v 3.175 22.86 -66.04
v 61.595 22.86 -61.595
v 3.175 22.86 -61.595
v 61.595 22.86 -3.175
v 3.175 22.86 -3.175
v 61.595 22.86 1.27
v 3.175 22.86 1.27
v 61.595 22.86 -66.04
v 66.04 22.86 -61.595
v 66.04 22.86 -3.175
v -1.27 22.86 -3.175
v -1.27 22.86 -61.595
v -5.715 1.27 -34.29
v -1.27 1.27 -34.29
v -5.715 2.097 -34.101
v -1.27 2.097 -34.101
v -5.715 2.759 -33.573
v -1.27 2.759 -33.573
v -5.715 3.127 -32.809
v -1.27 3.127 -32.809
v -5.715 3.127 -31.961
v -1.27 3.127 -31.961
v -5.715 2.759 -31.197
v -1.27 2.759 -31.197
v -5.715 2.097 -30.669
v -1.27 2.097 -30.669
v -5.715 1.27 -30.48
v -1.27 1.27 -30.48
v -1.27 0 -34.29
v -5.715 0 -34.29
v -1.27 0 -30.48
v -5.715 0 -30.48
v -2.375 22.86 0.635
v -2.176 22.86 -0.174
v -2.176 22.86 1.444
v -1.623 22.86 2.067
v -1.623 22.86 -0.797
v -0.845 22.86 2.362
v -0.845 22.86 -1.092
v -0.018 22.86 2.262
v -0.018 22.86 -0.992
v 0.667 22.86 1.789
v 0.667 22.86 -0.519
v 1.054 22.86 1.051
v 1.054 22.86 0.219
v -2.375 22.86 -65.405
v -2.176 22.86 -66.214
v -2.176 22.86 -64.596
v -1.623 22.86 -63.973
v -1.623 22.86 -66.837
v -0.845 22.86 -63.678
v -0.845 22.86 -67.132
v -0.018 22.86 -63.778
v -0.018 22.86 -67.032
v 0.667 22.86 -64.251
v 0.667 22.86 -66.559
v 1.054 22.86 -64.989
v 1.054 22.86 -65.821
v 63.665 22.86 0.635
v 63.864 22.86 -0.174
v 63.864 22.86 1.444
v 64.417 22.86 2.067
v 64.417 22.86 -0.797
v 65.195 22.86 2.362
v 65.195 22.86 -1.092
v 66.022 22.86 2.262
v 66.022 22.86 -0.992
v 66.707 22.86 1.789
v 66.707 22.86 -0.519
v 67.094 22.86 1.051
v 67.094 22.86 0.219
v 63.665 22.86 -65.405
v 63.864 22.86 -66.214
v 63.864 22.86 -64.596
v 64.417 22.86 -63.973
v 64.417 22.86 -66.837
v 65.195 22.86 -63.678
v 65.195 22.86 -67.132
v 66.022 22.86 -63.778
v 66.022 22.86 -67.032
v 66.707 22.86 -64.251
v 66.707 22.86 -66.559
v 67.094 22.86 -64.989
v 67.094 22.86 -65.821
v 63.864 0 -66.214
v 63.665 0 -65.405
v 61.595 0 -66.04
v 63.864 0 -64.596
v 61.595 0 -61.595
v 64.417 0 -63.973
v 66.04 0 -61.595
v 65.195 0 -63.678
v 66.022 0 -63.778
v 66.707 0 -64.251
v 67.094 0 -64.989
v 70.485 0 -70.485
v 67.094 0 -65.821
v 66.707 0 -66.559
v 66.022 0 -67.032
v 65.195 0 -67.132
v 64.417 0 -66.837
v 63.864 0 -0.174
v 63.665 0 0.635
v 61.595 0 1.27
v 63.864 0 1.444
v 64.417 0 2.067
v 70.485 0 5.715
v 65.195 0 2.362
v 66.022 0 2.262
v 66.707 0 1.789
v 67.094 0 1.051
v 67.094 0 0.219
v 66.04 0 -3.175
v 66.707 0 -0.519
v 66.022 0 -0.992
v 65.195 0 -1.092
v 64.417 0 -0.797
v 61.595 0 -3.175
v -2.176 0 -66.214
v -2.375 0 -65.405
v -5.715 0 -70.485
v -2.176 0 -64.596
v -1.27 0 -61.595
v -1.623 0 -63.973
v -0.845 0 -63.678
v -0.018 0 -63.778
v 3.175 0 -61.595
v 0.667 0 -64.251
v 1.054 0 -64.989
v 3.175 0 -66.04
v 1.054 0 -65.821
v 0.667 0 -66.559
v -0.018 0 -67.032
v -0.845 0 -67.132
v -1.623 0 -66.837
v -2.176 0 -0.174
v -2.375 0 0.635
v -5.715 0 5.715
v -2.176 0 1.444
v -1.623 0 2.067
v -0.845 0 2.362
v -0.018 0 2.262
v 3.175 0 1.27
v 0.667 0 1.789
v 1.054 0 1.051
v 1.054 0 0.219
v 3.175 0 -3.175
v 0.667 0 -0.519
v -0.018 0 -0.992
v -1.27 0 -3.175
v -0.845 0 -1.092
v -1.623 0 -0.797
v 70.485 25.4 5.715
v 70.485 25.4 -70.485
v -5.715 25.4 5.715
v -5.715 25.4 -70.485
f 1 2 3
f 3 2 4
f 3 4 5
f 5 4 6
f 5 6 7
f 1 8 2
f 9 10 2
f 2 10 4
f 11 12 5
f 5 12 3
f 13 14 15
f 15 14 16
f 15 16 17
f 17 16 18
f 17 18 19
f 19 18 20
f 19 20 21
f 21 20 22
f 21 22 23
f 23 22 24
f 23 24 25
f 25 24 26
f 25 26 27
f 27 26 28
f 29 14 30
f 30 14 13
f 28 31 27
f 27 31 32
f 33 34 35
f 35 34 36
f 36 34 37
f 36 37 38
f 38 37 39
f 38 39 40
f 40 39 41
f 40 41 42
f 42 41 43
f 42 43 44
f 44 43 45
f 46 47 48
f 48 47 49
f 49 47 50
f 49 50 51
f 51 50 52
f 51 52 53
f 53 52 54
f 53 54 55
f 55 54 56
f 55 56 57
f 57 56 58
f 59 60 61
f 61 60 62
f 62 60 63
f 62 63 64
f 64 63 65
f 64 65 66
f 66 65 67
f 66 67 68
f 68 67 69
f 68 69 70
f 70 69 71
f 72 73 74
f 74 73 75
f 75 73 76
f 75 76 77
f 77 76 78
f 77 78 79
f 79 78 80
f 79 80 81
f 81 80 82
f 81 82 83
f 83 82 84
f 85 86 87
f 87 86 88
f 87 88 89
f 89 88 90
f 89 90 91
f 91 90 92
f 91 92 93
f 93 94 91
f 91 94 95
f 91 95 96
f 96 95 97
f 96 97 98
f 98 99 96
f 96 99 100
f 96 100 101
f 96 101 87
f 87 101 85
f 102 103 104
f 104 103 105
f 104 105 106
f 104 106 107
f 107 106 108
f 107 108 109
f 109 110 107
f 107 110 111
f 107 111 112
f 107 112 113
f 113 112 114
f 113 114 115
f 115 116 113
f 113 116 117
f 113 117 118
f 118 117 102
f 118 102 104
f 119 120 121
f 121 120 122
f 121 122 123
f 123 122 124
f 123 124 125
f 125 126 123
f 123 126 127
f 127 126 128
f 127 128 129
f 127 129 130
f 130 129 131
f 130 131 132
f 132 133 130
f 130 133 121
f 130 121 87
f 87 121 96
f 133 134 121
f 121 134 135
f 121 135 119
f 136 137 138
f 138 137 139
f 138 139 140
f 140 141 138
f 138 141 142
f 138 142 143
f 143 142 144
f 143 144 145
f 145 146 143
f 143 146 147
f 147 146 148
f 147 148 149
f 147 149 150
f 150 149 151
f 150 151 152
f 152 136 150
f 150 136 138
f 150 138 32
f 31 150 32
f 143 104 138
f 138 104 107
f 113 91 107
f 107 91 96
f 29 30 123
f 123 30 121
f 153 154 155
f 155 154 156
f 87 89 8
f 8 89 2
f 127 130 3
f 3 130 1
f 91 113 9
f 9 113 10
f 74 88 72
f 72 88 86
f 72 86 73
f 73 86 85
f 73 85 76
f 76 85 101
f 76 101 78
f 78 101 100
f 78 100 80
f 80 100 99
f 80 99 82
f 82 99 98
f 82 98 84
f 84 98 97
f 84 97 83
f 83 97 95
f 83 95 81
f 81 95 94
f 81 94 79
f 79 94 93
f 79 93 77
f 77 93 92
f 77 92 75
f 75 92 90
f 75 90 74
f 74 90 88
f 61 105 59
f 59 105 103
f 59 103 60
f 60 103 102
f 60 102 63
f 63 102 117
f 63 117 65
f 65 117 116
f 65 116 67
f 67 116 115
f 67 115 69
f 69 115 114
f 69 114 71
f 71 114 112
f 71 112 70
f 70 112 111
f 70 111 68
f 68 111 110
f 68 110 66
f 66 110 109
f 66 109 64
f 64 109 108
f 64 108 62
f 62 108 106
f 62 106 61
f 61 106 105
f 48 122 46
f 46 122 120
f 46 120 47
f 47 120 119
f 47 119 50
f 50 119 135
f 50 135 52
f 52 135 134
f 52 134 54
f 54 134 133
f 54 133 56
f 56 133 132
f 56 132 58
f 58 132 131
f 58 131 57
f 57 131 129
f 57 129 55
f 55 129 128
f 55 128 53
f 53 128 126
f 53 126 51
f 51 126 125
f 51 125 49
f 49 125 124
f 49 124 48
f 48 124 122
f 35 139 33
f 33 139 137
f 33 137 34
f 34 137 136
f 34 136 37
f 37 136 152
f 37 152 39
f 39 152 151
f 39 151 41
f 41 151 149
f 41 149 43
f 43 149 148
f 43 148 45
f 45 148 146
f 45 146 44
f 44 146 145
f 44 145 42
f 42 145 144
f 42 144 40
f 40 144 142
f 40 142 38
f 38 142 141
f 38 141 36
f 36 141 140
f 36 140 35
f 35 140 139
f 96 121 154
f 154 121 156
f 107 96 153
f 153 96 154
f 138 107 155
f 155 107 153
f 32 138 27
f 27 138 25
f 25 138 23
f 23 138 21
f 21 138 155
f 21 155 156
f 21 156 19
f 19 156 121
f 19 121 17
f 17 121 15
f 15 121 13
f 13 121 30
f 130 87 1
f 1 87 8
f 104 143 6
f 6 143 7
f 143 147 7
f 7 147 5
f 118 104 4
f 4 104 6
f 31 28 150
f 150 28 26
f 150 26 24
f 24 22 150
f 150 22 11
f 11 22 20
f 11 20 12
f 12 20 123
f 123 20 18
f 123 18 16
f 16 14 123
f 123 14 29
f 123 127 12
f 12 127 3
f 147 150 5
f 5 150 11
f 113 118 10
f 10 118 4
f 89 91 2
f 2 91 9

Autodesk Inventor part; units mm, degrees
ref_plane "YZ Plane" through (0, 0, 0) normal (1, 0, 0) x (0, 1, 0)
ref_plane "XZ Plane" through (0, 0, 0) normal (0, 1, 0) x (-1, 0, 0)
ref_plane "XY Plane" through (0, 0, 0) normal (0, 0, 1) x (1, 0, 0)
sketch "Sketch1" plane through (0, 0, 0) normal (0, 1, 0) x (-1, 0, 0)
  line L0 (-70.485, -70.485) -> (5.715, -70.485)
  line L1 (5.715, -70.485) -> (5.715, 5.715)
  line L2 (5.715, 5.715) -> (-70.485, 5.715)
  line L3 (-70.485, 5.715) -> (-70.485, -70.485)
  line L4 (-70.485, -70.485) -> (5.715, 5.715) construction
  line L5 (5.715, -70.485) -> (-70.485, 5.715) construction
  line L6 (5.715, 5.715) -> (0.635, 5.715) construction
  line L7 (0.635, 5.715) -> (0.635, 0.635) construction
  line L8 (0.635, 0.635) -> (5.715, 0.635) construction
  line L9 (5.715, 0.635) -> (5.715, 5.715) construction
  line L10 (-3.175, -3.175) -> (-61.595, -3.175)
  line L11 (-61.595, -3.175) -> (-61.595, -61.595)
  line L12 (-61.595, -61.595) -> (-3.175, -61.595)
  line L13 (-3.175, -61.595) -> (-3.175, -3.175)
  line L14 (-3.175, -3.175) -> (-61.595, -61.595) construction
  line L15 (-61.595, -3.175) -> (-3.175, -61.595) construction
  circle A0 centre (0.635, 0.635) radius 1.7399
  circle A1 centre (0.635, -65.405) radius 1.7399
  circle A2 centre (-65.405, 0.635) radius 1.7399
  circle A3 centre (-65.405, -65.405) radius 1.7399
  point P0 (0, 0)
  point P1 (-32.385, -32.385)
  dimension "d2" = 76.2
  dimension "d3" = 76.2
  dimension "d4" = 5.08
  dimension "d5" = 5.08
  dimension "d7" = 58.42
  dimension "d8" = 58.42
  dimension "d9" = 3.4798
  dimension "d12" = 66.04
  dimension "d15" = 66.04
extrude "Extrusion1" add sketch "Sketch1" along normal blind 22.86
sketch "Sketch2" plane through (0, 22.86, 0) normal (0, 1, 0) x (1, 0, 0)
  line L0 (-5.715, -5.715) -> (70.485, -5.715) projected
  line L1 (70.485, -5.715) -> (70.485, 70.485) projected
  line L2 (-5.715, -5.715) -> (70.485, -5.715)
  line L3 (70.485, -5.715) -> (70.485, 70.485)
  line L4 (70.485, 70.485) -> (-5.715, 70.485)
  line L5 (-5.715, 70.485) -> (-5.715, -5.715)
  point P0 (0, 0)
extrude "Extrusion2" add sketch "Sketch2" along normal blind 2.54
sketch "Sketch3" plane through (-5.715, 0, -70.485) normal (-1, 0, 0) x (0, 0, 1)
  line L0 (38.1, 0) -> (38.1, 25.4) construction
  line L1 (76.2, 25.4) -> (0, 25.4) construction
  line L2 (38.1, 0) -> (40.005, 0) construction
  line L3 (40.005, 0) -> (36.195, 0)
  line L4 (36.195, 0) -> (36.195, 1.27)
  line L5 (40.005, 1.27) -> (40.005, 0)
  arc A0 (40.005, 1.27) -> (36.195, 1.27) centre (38.1, 1.27) ccw
  point P0 (70.485, 0)
  point P1 (38.1, 3.175)
  dimension "d24" = 1.27
  dimension "d25" = 3.81
  dimension "d26" = 1.905
extrude "Extrusion3" cut sketch "Sketch3" against normal up to surface (8.89 mm away)
sketch "Sketch4" plane through (0, 0, 0) normal (0, -1, 0) x (1, 0, 0)
  line L0 (61.595, -3.175) -> (3.175, -3.175) construction
  line L1 (-5.715, 5.715) -> (70.485, 5.715) construction
  line L2 (3.175, -3.175) -> (61.595, -3.175)
  line L3 (61.595, -3.175) -> (61.595, 1.27)
  line L4 (61.595, 1.27) -> (3.175, 1.27)
  line L5 (3.175, 1.27) -> (3.175, -3.175)
  line L6 (70.485, -70.485) -> (-5.715, -70.485) construction
  circle A0 centre (32.385, -32.385) radius 4.575 construction
  line L7 (-1.27, -61.595) -> (3.175, -61.595)
  line L8 (3.175, -61.595) -> (3.175, -3.175)
  line L9 (3.175, -3.175) -> (-1.27, -3.175)
  line L10 (-1.27, -3.175) -> (-1.27, -61.595)
  line L11 (61.595, -66.04) -> (61.595, -61.595)
  line L12 (61.595, -61.595) -> (3.175, -61.595)
  line L13 (3.175, -61.595) -> (3.175, -66.04)
  line L14 (3.175, -66.04) -> (61.595, -66.04)
  line L15 (66.04, -3.175) -> (61.595, -3.175)
  line L16 (61.595, -3.175) -> (61.595, -61.595)
  line L17 (61.595, -61.595) -> (66.04, -61.595)
  line L18 (66.04, -61.595) -> (66.04, -3.175)
  point P0 (0, 0)
  dimension "d31" = 360
extrude "Extrusion4" cut sketch "Sketch4" against normal blind 22.86 contours L5 L4 L3 L2 | L8 L7 L10 L9 | L15 L18 L17 L16 | L12 L11 L14 L13
properties part number "keypad cover"
